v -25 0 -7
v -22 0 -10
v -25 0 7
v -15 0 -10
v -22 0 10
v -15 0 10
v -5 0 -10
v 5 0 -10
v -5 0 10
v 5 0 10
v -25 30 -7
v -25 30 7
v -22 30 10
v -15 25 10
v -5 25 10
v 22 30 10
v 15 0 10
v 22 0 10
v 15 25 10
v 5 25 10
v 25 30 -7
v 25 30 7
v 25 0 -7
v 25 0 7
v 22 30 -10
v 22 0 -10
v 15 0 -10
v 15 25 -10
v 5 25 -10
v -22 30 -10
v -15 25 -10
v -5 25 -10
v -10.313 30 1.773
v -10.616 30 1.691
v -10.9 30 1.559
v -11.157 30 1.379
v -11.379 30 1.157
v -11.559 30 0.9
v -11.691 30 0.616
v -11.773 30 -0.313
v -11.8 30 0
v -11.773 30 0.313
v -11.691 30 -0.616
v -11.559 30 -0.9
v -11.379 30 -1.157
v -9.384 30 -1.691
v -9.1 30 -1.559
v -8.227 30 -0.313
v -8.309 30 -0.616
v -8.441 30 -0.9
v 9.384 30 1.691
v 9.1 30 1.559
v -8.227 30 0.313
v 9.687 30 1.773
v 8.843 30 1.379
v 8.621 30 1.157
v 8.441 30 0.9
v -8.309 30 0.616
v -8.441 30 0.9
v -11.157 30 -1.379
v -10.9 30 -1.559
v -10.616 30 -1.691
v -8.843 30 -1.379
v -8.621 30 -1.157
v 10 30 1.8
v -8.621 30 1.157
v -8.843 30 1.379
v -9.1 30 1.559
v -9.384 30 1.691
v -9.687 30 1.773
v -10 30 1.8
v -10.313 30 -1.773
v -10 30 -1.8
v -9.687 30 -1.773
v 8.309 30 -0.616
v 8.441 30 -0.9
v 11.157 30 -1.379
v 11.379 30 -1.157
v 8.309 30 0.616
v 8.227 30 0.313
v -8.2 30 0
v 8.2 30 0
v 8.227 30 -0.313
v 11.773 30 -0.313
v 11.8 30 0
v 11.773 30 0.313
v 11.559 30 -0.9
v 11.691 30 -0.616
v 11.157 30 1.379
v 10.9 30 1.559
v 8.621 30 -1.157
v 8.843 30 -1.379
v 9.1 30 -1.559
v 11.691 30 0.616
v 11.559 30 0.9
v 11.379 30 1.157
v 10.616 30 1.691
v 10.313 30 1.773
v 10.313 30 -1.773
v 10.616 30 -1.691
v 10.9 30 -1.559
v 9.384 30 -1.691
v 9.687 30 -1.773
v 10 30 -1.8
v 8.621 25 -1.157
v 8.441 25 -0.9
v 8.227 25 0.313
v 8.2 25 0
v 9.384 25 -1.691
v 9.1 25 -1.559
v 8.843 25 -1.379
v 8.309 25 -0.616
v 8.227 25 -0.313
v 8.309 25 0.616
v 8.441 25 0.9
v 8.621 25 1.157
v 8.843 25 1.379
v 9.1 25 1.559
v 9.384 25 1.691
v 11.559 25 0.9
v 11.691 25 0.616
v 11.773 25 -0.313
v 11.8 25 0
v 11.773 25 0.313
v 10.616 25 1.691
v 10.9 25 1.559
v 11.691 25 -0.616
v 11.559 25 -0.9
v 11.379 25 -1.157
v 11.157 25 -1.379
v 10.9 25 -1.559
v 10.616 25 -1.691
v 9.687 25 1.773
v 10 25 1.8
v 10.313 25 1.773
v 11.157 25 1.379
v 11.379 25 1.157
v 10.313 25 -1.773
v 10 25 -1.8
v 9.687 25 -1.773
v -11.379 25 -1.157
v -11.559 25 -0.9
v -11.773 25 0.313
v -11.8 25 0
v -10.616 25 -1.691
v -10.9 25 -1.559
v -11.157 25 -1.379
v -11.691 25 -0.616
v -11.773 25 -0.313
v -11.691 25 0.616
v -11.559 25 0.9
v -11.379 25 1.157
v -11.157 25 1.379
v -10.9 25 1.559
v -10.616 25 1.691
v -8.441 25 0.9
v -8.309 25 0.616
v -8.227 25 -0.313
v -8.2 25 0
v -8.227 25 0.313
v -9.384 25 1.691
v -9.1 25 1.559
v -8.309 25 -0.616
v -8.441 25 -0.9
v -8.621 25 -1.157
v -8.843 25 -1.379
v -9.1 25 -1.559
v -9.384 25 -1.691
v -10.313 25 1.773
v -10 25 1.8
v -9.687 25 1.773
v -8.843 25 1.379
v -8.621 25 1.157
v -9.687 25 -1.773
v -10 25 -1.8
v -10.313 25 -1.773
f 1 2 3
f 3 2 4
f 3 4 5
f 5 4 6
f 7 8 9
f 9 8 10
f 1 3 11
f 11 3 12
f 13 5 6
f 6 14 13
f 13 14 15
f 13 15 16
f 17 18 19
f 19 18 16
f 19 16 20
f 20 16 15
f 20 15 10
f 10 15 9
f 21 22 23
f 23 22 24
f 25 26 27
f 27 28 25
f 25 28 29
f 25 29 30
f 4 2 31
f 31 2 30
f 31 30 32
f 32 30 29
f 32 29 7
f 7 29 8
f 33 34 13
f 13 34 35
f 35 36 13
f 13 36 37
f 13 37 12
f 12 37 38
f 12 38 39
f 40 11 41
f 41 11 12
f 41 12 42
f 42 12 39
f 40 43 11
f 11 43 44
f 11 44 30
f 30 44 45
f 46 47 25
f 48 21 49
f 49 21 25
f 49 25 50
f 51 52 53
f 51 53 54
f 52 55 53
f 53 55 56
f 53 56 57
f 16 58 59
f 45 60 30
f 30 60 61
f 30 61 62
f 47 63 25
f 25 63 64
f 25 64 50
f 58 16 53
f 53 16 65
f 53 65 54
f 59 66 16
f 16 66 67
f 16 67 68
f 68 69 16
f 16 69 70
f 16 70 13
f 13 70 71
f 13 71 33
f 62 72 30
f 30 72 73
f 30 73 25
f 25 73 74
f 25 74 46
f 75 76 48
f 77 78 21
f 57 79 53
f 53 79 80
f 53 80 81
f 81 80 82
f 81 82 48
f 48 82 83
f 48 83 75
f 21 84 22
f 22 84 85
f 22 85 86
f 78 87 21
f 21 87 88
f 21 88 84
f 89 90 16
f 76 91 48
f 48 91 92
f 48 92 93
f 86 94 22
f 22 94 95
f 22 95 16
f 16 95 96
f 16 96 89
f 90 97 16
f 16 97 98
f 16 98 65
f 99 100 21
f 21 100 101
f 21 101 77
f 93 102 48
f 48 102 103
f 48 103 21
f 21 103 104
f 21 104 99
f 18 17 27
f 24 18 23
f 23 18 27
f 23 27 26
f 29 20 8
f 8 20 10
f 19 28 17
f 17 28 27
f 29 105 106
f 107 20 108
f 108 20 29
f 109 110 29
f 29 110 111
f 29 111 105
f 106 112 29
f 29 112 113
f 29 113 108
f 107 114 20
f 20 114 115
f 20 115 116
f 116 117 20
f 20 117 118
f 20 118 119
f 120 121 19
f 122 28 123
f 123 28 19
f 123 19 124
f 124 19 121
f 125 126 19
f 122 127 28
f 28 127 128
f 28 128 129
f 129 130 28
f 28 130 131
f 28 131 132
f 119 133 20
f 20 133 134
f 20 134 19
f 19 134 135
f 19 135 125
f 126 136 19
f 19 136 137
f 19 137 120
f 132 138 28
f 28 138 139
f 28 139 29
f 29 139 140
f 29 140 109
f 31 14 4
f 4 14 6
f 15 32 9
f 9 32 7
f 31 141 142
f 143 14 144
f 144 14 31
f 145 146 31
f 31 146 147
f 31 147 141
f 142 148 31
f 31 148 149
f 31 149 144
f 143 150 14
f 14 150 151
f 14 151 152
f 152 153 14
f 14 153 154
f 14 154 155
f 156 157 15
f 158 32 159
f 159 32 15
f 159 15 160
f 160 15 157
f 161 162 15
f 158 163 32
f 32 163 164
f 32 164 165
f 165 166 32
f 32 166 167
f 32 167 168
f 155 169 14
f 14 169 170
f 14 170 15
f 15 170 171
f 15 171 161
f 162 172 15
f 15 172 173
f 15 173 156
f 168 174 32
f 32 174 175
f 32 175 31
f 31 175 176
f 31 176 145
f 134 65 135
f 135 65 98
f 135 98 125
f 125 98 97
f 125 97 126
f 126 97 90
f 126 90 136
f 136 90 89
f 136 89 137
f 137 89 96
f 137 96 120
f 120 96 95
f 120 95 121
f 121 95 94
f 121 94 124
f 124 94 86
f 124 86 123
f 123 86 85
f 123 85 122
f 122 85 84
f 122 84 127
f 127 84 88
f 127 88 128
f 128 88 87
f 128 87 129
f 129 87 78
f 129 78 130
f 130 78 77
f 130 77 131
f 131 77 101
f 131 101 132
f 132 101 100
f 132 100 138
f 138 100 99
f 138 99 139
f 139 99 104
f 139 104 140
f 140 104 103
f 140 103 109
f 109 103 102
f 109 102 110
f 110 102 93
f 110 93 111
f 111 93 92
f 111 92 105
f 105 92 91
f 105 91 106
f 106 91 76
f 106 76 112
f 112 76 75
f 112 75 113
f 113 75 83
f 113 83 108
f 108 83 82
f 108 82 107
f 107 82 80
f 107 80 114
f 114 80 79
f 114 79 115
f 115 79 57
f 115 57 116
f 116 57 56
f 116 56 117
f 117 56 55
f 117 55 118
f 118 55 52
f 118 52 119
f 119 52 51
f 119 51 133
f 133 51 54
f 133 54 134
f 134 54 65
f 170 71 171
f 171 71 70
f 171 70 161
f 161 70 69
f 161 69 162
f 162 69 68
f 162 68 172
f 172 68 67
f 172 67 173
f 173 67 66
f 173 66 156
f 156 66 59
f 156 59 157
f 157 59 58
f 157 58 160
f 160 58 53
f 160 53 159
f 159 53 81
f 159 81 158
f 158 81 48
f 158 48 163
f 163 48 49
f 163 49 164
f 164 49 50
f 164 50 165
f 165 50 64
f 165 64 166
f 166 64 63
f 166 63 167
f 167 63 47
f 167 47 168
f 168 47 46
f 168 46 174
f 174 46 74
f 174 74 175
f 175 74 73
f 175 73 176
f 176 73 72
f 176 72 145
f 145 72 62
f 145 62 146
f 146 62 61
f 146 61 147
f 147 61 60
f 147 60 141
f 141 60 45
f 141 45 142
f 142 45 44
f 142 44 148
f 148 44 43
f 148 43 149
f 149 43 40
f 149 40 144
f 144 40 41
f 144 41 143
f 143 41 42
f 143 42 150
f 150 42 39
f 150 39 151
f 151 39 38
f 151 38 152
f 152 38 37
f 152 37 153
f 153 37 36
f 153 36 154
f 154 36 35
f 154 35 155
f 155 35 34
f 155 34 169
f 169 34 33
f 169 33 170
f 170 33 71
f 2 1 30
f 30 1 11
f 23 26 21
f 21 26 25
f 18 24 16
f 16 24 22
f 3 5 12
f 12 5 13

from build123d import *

# Parameters (mm, degrees)
SKIZZE1_W                       = 50
SKIZZE1_H                       = 20
AUFSATZ_LINEAR_AUSTRAGEN1_DEPTH = 30
SKIZZE2_W                       = 10
SKIZZE2_H                       = 20
SCHNITT_LINEAR_AUSTRAGEN1_DEPTH = 25
DURCHGANGSLOCH_F_R_M31_D        = 3.6
FASE1_SIZE                      = 3


with BuildPart() as part:
    # Skizze1 → Aufsatz-Linear austragen1 (new body)
    with BuildSketch(Plane(origin=(0, 0, 0), x_dir=(1, 0, 0), z_dir=(0, 1, 0))):
        Rectangle(SKIZZE1_W, SKIZZE1_H)
    extrude(amount=AUFSATZ_LINEAR_AUSTRAGEN1_DEPTH)

    # Skizze2 → Schnitt-Linear austragen1 (cut)
    with BuildSketch(Plane.XZ):
        with Locations((-10, 0)):
            Rectangle(SKIZZE2_W, SKIZZE2_H)
        with Locations((10, 0)):
            Rectangle(SKIZZE2_W, SKIZZE2_H)
    extrude(amount=-SCHNITT_LINEAR_AUSTRAGEN1_DEPTH, mode=Mode.SUBTRACT)

    # Durchgangsloch für M31 (through all)
    with Locations(Plane(origin=(0, 30, 0), x_dir=(1, 0, 0), z_dir=(0, 1, 0))):
        with Locations((-10, 0), (10, 0)):
            Hole(DURCHGANGSLOCH_F_R_M31_D / 2)

    # Fase1
    fase1_edges = [part.edges().sort_by_distance(p)[0] for p in [
        (-25, 15, -10),
        (25, 15, -10),
        (25, 15, 10),
        (-25, 15, 10),
    ]]
    chamfer(fase1_edges, length=FASE1_SIZE)


solid = part.part
